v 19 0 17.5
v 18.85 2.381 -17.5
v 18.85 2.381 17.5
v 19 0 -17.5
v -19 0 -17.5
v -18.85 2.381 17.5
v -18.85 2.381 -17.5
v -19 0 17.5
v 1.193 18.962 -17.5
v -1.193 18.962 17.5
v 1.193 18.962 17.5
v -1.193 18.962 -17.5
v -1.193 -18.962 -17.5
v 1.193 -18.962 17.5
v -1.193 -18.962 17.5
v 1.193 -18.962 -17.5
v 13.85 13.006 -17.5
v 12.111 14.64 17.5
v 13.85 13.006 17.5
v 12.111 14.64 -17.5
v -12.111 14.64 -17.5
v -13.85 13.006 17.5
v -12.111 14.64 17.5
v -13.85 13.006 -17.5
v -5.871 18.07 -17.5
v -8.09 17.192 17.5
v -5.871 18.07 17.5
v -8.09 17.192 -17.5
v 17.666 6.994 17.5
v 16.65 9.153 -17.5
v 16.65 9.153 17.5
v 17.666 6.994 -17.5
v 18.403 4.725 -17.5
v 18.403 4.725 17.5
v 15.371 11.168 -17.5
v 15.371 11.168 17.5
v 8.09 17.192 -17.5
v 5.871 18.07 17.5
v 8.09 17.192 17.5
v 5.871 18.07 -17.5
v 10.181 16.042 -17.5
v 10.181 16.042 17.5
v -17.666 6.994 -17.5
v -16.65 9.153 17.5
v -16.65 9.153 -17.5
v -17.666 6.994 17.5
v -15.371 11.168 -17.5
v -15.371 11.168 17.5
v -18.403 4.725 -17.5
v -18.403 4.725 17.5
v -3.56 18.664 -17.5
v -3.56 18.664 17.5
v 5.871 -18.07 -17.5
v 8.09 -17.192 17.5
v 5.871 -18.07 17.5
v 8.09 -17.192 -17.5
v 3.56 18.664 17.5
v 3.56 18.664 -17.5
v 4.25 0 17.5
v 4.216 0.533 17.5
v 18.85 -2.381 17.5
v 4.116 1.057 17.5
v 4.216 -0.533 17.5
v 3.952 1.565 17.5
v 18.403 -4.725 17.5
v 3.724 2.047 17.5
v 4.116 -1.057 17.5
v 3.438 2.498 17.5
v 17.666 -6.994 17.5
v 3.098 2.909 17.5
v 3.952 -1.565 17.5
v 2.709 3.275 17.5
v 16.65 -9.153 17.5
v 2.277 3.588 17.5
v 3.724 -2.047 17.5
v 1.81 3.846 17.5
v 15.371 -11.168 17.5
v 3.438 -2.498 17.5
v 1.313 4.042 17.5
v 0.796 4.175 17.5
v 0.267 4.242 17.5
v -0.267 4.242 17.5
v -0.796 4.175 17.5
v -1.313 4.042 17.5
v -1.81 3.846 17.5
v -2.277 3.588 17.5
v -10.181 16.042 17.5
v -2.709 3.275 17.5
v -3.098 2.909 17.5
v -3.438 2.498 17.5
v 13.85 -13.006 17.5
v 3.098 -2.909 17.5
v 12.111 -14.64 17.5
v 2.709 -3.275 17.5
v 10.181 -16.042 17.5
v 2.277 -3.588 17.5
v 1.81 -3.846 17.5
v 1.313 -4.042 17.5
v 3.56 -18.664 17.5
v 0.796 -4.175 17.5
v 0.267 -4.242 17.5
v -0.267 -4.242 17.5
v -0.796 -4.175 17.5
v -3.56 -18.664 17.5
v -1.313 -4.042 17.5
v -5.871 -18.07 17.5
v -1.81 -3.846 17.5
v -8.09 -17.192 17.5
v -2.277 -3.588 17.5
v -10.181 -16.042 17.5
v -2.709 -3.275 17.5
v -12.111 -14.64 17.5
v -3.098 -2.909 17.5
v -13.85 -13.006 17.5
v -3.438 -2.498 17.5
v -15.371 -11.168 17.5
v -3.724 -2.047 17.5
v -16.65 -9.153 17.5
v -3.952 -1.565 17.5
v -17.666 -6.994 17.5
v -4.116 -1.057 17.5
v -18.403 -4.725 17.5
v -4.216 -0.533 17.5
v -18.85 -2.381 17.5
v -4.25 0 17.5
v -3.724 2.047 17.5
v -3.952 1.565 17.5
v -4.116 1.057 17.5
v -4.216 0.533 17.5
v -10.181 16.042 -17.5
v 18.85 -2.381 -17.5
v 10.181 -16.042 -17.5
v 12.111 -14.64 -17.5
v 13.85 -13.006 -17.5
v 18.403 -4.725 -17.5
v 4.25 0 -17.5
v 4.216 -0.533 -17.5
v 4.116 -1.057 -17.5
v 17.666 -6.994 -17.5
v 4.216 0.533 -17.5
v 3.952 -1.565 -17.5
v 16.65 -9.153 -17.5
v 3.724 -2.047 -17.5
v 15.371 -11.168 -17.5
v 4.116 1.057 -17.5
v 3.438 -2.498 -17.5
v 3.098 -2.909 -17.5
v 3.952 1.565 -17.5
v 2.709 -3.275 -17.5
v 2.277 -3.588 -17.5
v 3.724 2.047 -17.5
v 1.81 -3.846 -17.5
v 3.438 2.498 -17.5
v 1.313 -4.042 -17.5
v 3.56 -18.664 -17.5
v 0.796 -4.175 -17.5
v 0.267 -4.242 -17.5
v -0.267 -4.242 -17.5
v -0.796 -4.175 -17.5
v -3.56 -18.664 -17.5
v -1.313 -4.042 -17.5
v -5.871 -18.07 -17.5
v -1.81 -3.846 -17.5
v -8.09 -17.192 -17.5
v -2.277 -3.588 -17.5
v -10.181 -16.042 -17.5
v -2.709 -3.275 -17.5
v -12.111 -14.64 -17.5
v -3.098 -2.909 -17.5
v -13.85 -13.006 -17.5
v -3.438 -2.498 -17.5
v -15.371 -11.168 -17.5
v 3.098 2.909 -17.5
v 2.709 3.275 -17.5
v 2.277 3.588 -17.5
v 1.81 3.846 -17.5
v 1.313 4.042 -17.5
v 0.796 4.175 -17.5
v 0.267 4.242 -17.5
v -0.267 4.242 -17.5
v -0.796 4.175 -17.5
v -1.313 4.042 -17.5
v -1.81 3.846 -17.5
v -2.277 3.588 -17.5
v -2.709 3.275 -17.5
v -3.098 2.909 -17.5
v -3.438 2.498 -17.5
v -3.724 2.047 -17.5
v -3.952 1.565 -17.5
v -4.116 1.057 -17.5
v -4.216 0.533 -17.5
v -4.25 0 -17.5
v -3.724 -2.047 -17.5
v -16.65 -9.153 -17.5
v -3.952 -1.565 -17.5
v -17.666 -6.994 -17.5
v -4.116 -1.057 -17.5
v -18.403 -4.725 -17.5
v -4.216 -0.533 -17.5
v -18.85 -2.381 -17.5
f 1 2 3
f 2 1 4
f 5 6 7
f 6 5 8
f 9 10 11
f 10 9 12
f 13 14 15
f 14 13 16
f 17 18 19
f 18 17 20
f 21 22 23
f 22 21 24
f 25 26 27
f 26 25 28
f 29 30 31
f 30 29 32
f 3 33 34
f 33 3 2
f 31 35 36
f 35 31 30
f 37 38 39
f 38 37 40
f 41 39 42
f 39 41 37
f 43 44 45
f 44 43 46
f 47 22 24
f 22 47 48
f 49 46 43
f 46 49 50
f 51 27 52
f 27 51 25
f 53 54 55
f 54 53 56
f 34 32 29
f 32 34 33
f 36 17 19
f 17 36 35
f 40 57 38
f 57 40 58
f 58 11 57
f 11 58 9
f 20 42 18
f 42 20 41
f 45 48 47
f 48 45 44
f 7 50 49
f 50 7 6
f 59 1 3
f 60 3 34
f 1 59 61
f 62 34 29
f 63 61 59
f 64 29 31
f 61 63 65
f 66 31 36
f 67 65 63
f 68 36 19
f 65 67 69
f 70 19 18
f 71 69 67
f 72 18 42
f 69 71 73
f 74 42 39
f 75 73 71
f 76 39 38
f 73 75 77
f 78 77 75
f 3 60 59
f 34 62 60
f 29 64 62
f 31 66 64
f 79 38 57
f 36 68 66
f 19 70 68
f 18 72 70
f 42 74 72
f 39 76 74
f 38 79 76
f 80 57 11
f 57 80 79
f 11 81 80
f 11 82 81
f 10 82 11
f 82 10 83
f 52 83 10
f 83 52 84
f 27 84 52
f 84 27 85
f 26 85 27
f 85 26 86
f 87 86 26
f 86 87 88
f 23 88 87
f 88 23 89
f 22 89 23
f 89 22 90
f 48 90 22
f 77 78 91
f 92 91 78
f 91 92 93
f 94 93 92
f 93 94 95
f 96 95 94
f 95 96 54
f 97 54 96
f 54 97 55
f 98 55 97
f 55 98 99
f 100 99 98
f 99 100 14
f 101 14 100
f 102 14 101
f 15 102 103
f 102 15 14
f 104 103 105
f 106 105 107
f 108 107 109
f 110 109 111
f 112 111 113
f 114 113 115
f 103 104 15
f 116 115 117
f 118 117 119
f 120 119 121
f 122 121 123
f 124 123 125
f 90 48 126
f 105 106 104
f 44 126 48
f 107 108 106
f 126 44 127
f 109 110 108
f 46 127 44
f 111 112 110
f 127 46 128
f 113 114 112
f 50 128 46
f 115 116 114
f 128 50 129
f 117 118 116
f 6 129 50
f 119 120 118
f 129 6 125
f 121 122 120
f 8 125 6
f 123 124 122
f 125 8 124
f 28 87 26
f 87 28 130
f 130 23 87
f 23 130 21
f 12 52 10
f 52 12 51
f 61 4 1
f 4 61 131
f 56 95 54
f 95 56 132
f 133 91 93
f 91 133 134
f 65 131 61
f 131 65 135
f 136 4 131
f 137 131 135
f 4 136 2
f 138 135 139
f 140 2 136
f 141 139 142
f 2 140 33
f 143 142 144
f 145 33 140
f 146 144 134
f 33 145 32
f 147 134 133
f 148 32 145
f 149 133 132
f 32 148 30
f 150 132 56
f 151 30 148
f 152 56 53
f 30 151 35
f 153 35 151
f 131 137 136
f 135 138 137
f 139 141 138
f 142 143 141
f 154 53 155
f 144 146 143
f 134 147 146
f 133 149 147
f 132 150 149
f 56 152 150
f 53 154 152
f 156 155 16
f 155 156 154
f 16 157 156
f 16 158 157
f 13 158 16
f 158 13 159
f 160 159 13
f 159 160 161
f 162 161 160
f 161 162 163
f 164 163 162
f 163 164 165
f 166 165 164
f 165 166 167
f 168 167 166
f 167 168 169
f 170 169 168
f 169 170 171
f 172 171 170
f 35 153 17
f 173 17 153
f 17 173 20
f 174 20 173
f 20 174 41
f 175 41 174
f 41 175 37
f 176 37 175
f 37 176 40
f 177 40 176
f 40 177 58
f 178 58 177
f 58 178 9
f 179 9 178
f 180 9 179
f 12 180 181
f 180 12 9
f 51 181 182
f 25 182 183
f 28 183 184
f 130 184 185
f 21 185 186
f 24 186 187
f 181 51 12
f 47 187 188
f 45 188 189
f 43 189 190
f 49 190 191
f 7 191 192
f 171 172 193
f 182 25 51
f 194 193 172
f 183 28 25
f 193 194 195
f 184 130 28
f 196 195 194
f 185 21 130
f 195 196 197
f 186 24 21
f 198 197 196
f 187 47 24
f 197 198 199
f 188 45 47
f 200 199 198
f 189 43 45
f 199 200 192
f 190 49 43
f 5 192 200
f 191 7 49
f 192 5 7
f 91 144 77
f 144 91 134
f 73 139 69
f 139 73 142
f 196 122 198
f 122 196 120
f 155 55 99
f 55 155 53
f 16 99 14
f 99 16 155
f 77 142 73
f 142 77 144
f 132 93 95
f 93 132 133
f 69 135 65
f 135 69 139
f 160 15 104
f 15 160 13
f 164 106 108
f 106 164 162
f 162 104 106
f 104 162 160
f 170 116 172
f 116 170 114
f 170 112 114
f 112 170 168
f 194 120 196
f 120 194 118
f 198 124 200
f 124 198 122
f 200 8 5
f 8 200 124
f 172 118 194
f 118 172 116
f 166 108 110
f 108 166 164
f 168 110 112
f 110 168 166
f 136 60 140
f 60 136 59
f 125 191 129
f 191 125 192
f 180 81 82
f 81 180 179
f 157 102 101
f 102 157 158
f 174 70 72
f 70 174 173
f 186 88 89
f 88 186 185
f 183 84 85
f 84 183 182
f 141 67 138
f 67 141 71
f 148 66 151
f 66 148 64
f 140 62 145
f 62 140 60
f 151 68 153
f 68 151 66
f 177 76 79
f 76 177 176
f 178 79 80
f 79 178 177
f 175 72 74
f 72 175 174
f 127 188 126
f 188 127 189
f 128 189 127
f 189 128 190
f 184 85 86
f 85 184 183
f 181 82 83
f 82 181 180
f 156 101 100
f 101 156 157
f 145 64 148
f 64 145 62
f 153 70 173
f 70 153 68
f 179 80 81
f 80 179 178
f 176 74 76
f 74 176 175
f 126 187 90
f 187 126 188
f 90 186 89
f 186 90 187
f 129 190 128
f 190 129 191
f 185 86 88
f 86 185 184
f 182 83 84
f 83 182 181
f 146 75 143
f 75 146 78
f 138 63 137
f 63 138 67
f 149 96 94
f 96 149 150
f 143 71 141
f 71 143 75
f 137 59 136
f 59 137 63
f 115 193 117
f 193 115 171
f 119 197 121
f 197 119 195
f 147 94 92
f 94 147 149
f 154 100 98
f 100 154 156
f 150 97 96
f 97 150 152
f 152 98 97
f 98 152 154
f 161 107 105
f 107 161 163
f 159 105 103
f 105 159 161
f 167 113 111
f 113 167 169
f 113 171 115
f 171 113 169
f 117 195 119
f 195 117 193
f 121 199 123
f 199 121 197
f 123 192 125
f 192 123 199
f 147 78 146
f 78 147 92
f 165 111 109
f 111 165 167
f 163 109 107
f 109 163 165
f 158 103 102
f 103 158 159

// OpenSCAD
$fn = 50;


difference() {
	union() {
		translate(v = [0, 0, -17.5000000000]) {
			cylinder(h = 35, r = 19.0000000000);
		}
	}
	union() {
		translate(v = [0, 0, -100.0000000000]) {
			cylinder(h = 200, r = 4.2500000000);
		}
	}
}
